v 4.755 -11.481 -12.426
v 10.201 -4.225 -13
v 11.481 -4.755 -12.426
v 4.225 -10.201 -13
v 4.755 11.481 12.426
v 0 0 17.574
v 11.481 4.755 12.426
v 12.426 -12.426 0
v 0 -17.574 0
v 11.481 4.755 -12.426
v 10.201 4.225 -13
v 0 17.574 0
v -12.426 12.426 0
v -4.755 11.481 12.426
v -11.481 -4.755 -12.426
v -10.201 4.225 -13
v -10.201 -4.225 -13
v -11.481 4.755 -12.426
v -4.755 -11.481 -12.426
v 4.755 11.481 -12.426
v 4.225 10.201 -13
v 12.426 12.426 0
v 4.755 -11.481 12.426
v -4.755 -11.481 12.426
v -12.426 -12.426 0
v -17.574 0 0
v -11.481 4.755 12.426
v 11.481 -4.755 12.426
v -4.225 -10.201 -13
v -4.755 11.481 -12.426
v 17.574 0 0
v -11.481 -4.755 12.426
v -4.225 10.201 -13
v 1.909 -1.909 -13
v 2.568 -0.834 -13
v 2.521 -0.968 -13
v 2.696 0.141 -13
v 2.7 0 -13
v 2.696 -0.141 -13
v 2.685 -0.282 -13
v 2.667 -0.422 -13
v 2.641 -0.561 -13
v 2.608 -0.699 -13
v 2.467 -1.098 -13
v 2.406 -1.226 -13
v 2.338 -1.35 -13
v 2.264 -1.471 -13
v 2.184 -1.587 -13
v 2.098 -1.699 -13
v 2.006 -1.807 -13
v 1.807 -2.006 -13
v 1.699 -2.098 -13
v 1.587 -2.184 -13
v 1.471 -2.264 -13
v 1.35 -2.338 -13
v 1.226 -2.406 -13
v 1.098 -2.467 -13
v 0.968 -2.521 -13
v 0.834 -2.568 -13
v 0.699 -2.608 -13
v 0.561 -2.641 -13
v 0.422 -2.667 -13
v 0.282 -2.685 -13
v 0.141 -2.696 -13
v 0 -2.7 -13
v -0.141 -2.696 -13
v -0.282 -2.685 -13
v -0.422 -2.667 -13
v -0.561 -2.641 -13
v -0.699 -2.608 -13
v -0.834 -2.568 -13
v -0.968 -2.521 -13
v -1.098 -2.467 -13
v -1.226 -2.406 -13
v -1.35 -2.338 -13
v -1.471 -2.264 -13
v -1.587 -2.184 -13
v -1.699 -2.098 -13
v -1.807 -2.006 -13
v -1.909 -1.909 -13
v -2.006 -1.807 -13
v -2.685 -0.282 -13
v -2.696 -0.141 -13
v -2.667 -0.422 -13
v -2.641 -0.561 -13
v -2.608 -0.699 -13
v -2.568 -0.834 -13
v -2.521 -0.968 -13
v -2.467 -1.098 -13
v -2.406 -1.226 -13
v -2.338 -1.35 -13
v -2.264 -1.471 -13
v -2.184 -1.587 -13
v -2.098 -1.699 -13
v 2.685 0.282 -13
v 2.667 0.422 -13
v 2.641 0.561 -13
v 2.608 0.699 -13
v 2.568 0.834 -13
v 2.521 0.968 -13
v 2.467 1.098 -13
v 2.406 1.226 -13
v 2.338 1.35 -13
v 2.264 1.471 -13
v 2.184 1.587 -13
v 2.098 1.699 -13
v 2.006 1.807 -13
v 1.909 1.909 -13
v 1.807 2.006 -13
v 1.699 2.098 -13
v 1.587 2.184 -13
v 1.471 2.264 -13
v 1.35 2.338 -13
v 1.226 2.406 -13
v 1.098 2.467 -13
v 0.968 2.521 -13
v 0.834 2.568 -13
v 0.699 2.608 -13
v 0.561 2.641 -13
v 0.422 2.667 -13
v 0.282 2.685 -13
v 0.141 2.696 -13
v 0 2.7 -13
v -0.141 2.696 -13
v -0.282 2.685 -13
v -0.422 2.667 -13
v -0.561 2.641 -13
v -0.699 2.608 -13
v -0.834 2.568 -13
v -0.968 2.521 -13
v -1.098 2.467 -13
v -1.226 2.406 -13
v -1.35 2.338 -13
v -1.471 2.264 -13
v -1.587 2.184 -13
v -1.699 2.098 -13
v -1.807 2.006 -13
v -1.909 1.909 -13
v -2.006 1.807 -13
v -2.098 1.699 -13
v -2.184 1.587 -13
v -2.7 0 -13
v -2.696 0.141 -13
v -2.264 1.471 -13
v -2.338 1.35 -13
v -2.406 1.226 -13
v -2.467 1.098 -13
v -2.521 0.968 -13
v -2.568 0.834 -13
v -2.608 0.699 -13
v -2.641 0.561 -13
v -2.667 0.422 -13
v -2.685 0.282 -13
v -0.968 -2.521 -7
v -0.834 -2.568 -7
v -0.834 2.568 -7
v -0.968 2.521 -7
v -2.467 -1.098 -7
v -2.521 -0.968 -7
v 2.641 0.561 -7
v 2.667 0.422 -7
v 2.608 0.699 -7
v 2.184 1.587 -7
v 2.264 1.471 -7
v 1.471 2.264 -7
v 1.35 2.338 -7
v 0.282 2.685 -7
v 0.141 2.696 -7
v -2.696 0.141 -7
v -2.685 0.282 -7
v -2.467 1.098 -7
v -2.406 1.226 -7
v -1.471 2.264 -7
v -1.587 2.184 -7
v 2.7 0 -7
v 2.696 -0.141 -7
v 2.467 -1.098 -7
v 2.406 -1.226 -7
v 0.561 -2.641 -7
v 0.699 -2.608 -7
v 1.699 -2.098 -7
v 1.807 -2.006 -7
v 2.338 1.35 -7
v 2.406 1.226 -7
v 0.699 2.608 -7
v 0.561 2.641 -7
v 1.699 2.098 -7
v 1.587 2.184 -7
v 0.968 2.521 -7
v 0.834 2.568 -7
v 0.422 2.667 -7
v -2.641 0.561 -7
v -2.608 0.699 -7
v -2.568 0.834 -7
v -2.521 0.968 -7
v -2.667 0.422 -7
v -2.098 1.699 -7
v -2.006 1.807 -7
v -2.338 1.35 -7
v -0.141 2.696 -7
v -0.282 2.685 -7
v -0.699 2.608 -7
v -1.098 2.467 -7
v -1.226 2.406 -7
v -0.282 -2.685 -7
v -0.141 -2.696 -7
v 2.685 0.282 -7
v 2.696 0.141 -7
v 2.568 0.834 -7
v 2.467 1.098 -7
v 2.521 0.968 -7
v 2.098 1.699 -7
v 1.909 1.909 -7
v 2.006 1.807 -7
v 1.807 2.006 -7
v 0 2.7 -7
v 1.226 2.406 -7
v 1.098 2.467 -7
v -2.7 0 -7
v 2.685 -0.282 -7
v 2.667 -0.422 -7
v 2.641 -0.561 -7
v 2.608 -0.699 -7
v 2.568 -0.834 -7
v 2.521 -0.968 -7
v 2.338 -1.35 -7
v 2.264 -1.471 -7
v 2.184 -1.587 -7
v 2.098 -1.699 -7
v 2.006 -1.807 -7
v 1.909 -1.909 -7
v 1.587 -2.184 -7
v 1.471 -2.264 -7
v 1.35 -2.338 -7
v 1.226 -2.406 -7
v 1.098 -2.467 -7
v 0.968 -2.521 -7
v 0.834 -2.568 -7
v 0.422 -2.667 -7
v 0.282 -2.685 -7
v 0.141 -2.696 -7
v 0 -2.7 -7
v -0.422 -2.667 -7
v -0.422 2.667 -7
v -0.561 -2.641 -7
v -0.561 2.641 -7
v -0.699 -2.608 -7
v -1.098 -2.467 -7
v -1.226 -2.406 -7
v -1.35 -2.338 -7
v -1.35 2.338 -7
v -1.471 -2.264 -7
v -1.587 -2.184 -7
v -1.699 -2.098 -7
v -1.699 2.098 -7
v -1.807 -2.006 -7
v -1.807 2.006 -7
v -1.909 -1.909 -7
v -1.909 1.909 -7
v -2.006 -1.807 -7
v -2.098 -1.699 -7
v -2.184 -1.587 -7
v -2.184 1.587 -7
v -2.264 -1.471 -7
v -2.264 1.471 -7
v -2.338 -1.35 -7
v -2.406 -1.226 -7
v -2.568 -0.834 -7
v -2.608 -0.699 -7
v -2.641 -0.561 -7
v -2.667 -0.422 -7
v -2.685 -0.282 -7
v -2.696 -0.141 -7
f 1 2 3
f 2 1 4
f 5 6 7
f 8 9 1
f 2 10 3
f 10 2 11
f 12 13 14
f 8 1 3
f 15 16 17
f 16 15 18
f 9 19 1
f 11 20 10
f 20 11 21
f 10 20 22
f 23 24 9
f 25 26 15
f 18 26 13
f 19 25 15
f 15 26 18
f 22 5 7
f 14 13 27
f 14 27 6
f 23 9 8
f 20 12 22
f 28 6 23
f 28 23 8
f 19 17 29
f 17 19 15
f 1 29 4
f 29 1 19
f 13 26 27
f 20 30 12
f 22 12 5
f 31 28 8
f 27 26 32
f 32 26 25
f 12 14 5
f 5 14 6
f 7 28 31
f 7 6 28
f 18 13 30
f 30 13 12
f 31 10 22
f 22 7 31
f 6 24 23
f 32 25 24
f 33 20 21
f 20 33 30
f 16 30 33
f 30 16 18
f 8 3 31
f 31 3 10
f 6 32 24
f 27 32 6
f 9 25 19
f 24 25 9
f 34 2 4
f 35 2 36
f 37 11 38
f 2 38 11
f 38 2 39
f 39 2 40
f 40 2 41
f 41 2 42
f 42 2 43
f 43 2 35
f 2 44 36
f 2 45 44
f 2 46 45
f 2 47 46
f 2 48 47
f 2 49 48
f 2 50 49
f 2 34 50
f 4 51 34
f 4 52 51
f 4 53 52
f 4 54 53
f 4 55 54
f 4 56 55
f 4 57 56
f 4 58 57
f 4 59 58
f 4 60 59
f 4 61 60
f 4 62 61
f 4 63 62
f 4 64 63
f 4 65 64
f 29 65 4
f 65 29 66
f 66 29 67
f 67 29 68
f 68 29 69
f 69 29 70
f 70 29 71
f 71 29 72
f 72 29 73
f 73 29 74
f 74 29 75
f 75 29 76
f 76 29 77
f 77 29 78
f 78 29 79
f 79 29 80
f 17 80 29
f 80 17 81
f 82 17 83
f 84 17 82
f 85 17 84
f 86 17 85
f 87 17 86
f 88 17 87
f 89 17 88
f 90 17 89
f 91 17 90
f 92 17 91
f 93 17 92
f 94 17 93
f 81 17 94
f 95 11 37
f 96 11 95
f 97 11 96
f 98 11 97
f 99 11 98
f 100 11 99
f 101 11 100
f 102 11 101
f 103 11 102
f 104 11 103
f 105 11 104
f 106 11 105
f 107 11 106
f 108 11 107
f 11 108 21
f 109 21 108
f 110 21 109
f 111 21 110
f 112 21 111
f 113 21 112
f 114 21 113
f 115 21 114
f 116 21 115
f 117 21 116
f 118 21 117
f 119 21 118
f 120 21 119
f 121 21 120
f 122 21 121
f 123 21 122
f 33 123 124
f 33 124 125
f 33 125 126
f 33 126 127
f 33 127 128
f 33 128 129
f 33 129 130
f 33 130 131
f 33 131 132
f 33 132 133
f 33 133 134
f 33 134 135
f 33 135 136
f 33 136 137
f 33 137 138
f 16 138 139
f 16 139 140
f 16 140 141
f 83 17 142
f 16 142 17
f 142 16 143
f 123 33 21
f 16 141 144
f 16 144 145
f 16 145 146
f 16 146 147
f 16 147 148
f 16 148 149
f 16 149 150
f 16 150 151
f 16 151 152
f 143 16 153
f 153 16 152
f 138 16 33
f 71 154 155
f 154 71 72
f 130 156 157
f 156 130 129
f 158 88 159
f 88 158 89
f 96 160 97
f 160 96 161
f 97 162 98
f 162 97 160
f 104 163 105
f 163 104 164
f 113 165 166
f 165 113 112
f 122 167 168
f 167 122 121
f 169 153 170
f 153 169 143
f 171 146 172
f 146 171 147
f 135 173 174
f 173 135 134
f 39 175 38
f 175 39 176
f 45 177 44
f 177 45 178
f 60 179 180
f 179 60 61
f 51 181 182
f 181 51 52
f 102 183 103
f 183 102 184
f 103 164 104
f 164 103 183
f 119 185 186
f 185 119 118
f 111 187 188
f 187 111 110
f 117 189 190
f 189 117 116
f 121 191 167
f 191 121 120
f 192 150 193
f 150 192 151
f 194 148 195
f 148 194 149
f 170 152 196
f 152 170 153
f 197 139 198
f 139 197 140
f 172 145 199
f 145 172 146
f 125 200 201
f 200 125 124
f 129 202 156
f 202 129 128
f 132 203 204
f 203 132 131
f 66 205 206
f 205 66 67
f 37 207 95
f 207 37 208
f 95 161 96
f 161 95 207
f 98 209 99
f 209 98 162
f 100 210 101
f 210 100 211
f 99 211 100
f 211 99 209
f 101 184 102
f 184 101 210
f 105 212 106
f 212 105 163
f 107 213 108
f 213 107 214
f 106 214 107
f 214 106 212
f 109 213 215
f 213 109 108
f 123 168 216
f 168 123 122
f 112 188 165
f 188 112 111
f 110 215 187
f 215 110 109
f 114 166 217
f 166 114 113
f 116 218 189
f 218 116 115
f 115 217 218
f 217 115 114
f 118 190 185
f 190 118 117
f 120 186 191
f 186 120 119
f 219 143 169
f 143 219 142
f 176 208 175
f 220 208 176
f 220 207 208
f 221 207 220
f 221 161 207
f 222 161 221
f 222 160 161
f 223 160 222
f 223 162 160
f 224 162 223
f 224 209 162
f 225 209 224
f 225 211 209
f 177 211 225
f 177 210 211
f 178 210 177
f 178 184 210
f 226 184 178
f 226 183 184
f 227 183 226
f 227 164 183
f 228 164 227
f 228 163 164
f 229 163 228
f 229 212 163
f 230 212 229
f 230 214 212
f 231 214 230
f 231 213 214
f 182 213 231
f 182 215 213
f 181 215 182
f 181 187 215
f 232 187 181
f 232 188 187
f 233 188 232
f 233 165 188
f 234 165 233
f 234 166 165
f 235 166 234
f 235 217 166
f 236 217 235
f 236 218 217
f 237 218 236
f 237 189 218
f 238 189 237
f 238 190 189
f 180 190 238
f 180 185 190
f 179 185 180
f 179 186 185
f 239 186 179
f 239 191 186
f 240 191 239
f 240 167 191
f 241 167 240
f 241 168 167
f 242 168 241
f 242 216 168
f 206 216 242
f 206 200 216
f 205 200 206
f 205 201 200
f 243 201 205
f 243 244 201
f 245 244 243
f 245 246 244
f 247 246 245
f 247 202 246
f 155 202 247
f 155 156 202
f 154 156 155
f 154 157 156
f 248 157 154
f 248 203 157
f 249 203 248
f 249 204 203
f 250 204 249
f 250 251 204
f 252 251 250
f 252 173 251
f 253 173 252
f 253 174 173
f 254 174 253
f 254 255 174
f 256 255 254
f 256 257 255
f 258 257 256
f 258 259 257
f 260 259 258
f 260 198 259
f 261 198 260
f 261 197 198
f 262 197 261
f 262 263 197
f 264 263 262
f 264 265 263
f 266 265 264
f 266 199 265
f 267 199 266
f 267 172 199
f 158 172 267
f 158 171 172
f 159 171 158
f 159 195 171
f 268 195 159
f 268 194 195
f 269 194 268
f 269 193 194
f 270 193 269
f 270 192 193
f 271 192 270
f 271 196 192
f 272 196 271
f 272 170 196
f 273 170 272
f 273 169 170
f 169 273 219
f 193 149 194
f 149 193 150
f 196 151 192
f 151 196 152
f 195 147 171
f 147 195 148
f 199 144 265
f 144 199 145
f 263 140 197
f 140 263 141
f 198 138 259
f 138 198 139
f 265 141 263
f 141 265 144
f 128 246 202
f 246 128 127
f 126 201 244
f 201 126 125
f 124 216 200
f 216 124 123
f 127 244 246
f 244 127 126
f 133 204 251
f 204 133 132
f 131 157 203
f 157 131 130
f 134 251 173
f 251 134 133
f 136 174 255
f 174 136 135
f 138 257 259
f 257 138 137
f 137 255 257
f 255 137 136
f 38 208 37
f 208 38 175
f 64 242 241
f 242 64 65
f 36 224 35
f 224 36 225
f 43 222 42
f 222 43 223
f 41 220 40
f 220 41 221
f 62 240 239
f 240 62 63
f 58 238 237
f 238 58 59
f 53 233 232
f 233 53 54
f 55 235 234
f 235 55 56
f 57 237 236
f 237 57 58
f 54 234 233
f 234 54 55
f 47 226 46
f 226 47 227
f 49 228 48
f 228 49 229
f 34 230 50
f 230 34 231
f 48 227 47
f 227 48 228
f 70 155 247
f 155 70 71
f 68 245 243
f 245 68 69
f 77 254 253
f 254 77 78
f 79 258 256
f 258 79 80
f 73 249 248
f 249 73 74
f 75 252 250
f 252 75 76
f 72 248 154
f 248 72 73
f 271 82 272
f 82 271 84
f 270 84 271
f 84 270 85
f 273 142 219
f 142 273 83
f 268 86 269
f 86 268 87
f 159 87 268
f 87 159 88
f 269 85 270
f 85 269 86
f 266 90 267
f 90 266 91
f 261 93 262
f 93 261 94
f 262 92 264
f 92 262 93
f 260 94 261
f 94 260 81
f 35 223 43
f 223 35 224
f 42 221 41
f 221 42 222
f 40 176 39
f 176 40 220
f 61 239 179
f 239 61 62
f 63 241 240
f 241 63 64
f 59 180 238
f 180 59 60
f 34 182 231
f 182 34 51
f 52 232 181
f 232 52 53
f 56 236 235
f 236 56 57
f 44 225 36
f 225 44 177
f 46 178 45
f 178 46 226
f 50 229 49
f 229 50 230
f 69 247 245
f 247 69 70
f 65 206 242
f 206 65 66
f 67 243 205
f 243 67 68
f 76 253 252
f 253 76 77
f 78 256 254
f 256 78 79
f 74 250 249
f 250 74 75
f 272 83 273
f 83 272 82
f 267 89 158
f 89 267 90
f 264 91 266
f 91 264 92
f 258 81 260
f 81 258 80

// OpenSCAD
include <BOSL/constants.scad>
use <BOSL/shapes.scad>
use <BOSL/transforms.scad>

$fn=120; //circle smoothness

difference() {
  color("yellow") staggered_sphere(d=30, circum=true, $fn=8);
  down(23) color("green") cuboid([30,30,20]);
  down(13) color("lime") cylinder(h=6, d=6*0.90);
}
